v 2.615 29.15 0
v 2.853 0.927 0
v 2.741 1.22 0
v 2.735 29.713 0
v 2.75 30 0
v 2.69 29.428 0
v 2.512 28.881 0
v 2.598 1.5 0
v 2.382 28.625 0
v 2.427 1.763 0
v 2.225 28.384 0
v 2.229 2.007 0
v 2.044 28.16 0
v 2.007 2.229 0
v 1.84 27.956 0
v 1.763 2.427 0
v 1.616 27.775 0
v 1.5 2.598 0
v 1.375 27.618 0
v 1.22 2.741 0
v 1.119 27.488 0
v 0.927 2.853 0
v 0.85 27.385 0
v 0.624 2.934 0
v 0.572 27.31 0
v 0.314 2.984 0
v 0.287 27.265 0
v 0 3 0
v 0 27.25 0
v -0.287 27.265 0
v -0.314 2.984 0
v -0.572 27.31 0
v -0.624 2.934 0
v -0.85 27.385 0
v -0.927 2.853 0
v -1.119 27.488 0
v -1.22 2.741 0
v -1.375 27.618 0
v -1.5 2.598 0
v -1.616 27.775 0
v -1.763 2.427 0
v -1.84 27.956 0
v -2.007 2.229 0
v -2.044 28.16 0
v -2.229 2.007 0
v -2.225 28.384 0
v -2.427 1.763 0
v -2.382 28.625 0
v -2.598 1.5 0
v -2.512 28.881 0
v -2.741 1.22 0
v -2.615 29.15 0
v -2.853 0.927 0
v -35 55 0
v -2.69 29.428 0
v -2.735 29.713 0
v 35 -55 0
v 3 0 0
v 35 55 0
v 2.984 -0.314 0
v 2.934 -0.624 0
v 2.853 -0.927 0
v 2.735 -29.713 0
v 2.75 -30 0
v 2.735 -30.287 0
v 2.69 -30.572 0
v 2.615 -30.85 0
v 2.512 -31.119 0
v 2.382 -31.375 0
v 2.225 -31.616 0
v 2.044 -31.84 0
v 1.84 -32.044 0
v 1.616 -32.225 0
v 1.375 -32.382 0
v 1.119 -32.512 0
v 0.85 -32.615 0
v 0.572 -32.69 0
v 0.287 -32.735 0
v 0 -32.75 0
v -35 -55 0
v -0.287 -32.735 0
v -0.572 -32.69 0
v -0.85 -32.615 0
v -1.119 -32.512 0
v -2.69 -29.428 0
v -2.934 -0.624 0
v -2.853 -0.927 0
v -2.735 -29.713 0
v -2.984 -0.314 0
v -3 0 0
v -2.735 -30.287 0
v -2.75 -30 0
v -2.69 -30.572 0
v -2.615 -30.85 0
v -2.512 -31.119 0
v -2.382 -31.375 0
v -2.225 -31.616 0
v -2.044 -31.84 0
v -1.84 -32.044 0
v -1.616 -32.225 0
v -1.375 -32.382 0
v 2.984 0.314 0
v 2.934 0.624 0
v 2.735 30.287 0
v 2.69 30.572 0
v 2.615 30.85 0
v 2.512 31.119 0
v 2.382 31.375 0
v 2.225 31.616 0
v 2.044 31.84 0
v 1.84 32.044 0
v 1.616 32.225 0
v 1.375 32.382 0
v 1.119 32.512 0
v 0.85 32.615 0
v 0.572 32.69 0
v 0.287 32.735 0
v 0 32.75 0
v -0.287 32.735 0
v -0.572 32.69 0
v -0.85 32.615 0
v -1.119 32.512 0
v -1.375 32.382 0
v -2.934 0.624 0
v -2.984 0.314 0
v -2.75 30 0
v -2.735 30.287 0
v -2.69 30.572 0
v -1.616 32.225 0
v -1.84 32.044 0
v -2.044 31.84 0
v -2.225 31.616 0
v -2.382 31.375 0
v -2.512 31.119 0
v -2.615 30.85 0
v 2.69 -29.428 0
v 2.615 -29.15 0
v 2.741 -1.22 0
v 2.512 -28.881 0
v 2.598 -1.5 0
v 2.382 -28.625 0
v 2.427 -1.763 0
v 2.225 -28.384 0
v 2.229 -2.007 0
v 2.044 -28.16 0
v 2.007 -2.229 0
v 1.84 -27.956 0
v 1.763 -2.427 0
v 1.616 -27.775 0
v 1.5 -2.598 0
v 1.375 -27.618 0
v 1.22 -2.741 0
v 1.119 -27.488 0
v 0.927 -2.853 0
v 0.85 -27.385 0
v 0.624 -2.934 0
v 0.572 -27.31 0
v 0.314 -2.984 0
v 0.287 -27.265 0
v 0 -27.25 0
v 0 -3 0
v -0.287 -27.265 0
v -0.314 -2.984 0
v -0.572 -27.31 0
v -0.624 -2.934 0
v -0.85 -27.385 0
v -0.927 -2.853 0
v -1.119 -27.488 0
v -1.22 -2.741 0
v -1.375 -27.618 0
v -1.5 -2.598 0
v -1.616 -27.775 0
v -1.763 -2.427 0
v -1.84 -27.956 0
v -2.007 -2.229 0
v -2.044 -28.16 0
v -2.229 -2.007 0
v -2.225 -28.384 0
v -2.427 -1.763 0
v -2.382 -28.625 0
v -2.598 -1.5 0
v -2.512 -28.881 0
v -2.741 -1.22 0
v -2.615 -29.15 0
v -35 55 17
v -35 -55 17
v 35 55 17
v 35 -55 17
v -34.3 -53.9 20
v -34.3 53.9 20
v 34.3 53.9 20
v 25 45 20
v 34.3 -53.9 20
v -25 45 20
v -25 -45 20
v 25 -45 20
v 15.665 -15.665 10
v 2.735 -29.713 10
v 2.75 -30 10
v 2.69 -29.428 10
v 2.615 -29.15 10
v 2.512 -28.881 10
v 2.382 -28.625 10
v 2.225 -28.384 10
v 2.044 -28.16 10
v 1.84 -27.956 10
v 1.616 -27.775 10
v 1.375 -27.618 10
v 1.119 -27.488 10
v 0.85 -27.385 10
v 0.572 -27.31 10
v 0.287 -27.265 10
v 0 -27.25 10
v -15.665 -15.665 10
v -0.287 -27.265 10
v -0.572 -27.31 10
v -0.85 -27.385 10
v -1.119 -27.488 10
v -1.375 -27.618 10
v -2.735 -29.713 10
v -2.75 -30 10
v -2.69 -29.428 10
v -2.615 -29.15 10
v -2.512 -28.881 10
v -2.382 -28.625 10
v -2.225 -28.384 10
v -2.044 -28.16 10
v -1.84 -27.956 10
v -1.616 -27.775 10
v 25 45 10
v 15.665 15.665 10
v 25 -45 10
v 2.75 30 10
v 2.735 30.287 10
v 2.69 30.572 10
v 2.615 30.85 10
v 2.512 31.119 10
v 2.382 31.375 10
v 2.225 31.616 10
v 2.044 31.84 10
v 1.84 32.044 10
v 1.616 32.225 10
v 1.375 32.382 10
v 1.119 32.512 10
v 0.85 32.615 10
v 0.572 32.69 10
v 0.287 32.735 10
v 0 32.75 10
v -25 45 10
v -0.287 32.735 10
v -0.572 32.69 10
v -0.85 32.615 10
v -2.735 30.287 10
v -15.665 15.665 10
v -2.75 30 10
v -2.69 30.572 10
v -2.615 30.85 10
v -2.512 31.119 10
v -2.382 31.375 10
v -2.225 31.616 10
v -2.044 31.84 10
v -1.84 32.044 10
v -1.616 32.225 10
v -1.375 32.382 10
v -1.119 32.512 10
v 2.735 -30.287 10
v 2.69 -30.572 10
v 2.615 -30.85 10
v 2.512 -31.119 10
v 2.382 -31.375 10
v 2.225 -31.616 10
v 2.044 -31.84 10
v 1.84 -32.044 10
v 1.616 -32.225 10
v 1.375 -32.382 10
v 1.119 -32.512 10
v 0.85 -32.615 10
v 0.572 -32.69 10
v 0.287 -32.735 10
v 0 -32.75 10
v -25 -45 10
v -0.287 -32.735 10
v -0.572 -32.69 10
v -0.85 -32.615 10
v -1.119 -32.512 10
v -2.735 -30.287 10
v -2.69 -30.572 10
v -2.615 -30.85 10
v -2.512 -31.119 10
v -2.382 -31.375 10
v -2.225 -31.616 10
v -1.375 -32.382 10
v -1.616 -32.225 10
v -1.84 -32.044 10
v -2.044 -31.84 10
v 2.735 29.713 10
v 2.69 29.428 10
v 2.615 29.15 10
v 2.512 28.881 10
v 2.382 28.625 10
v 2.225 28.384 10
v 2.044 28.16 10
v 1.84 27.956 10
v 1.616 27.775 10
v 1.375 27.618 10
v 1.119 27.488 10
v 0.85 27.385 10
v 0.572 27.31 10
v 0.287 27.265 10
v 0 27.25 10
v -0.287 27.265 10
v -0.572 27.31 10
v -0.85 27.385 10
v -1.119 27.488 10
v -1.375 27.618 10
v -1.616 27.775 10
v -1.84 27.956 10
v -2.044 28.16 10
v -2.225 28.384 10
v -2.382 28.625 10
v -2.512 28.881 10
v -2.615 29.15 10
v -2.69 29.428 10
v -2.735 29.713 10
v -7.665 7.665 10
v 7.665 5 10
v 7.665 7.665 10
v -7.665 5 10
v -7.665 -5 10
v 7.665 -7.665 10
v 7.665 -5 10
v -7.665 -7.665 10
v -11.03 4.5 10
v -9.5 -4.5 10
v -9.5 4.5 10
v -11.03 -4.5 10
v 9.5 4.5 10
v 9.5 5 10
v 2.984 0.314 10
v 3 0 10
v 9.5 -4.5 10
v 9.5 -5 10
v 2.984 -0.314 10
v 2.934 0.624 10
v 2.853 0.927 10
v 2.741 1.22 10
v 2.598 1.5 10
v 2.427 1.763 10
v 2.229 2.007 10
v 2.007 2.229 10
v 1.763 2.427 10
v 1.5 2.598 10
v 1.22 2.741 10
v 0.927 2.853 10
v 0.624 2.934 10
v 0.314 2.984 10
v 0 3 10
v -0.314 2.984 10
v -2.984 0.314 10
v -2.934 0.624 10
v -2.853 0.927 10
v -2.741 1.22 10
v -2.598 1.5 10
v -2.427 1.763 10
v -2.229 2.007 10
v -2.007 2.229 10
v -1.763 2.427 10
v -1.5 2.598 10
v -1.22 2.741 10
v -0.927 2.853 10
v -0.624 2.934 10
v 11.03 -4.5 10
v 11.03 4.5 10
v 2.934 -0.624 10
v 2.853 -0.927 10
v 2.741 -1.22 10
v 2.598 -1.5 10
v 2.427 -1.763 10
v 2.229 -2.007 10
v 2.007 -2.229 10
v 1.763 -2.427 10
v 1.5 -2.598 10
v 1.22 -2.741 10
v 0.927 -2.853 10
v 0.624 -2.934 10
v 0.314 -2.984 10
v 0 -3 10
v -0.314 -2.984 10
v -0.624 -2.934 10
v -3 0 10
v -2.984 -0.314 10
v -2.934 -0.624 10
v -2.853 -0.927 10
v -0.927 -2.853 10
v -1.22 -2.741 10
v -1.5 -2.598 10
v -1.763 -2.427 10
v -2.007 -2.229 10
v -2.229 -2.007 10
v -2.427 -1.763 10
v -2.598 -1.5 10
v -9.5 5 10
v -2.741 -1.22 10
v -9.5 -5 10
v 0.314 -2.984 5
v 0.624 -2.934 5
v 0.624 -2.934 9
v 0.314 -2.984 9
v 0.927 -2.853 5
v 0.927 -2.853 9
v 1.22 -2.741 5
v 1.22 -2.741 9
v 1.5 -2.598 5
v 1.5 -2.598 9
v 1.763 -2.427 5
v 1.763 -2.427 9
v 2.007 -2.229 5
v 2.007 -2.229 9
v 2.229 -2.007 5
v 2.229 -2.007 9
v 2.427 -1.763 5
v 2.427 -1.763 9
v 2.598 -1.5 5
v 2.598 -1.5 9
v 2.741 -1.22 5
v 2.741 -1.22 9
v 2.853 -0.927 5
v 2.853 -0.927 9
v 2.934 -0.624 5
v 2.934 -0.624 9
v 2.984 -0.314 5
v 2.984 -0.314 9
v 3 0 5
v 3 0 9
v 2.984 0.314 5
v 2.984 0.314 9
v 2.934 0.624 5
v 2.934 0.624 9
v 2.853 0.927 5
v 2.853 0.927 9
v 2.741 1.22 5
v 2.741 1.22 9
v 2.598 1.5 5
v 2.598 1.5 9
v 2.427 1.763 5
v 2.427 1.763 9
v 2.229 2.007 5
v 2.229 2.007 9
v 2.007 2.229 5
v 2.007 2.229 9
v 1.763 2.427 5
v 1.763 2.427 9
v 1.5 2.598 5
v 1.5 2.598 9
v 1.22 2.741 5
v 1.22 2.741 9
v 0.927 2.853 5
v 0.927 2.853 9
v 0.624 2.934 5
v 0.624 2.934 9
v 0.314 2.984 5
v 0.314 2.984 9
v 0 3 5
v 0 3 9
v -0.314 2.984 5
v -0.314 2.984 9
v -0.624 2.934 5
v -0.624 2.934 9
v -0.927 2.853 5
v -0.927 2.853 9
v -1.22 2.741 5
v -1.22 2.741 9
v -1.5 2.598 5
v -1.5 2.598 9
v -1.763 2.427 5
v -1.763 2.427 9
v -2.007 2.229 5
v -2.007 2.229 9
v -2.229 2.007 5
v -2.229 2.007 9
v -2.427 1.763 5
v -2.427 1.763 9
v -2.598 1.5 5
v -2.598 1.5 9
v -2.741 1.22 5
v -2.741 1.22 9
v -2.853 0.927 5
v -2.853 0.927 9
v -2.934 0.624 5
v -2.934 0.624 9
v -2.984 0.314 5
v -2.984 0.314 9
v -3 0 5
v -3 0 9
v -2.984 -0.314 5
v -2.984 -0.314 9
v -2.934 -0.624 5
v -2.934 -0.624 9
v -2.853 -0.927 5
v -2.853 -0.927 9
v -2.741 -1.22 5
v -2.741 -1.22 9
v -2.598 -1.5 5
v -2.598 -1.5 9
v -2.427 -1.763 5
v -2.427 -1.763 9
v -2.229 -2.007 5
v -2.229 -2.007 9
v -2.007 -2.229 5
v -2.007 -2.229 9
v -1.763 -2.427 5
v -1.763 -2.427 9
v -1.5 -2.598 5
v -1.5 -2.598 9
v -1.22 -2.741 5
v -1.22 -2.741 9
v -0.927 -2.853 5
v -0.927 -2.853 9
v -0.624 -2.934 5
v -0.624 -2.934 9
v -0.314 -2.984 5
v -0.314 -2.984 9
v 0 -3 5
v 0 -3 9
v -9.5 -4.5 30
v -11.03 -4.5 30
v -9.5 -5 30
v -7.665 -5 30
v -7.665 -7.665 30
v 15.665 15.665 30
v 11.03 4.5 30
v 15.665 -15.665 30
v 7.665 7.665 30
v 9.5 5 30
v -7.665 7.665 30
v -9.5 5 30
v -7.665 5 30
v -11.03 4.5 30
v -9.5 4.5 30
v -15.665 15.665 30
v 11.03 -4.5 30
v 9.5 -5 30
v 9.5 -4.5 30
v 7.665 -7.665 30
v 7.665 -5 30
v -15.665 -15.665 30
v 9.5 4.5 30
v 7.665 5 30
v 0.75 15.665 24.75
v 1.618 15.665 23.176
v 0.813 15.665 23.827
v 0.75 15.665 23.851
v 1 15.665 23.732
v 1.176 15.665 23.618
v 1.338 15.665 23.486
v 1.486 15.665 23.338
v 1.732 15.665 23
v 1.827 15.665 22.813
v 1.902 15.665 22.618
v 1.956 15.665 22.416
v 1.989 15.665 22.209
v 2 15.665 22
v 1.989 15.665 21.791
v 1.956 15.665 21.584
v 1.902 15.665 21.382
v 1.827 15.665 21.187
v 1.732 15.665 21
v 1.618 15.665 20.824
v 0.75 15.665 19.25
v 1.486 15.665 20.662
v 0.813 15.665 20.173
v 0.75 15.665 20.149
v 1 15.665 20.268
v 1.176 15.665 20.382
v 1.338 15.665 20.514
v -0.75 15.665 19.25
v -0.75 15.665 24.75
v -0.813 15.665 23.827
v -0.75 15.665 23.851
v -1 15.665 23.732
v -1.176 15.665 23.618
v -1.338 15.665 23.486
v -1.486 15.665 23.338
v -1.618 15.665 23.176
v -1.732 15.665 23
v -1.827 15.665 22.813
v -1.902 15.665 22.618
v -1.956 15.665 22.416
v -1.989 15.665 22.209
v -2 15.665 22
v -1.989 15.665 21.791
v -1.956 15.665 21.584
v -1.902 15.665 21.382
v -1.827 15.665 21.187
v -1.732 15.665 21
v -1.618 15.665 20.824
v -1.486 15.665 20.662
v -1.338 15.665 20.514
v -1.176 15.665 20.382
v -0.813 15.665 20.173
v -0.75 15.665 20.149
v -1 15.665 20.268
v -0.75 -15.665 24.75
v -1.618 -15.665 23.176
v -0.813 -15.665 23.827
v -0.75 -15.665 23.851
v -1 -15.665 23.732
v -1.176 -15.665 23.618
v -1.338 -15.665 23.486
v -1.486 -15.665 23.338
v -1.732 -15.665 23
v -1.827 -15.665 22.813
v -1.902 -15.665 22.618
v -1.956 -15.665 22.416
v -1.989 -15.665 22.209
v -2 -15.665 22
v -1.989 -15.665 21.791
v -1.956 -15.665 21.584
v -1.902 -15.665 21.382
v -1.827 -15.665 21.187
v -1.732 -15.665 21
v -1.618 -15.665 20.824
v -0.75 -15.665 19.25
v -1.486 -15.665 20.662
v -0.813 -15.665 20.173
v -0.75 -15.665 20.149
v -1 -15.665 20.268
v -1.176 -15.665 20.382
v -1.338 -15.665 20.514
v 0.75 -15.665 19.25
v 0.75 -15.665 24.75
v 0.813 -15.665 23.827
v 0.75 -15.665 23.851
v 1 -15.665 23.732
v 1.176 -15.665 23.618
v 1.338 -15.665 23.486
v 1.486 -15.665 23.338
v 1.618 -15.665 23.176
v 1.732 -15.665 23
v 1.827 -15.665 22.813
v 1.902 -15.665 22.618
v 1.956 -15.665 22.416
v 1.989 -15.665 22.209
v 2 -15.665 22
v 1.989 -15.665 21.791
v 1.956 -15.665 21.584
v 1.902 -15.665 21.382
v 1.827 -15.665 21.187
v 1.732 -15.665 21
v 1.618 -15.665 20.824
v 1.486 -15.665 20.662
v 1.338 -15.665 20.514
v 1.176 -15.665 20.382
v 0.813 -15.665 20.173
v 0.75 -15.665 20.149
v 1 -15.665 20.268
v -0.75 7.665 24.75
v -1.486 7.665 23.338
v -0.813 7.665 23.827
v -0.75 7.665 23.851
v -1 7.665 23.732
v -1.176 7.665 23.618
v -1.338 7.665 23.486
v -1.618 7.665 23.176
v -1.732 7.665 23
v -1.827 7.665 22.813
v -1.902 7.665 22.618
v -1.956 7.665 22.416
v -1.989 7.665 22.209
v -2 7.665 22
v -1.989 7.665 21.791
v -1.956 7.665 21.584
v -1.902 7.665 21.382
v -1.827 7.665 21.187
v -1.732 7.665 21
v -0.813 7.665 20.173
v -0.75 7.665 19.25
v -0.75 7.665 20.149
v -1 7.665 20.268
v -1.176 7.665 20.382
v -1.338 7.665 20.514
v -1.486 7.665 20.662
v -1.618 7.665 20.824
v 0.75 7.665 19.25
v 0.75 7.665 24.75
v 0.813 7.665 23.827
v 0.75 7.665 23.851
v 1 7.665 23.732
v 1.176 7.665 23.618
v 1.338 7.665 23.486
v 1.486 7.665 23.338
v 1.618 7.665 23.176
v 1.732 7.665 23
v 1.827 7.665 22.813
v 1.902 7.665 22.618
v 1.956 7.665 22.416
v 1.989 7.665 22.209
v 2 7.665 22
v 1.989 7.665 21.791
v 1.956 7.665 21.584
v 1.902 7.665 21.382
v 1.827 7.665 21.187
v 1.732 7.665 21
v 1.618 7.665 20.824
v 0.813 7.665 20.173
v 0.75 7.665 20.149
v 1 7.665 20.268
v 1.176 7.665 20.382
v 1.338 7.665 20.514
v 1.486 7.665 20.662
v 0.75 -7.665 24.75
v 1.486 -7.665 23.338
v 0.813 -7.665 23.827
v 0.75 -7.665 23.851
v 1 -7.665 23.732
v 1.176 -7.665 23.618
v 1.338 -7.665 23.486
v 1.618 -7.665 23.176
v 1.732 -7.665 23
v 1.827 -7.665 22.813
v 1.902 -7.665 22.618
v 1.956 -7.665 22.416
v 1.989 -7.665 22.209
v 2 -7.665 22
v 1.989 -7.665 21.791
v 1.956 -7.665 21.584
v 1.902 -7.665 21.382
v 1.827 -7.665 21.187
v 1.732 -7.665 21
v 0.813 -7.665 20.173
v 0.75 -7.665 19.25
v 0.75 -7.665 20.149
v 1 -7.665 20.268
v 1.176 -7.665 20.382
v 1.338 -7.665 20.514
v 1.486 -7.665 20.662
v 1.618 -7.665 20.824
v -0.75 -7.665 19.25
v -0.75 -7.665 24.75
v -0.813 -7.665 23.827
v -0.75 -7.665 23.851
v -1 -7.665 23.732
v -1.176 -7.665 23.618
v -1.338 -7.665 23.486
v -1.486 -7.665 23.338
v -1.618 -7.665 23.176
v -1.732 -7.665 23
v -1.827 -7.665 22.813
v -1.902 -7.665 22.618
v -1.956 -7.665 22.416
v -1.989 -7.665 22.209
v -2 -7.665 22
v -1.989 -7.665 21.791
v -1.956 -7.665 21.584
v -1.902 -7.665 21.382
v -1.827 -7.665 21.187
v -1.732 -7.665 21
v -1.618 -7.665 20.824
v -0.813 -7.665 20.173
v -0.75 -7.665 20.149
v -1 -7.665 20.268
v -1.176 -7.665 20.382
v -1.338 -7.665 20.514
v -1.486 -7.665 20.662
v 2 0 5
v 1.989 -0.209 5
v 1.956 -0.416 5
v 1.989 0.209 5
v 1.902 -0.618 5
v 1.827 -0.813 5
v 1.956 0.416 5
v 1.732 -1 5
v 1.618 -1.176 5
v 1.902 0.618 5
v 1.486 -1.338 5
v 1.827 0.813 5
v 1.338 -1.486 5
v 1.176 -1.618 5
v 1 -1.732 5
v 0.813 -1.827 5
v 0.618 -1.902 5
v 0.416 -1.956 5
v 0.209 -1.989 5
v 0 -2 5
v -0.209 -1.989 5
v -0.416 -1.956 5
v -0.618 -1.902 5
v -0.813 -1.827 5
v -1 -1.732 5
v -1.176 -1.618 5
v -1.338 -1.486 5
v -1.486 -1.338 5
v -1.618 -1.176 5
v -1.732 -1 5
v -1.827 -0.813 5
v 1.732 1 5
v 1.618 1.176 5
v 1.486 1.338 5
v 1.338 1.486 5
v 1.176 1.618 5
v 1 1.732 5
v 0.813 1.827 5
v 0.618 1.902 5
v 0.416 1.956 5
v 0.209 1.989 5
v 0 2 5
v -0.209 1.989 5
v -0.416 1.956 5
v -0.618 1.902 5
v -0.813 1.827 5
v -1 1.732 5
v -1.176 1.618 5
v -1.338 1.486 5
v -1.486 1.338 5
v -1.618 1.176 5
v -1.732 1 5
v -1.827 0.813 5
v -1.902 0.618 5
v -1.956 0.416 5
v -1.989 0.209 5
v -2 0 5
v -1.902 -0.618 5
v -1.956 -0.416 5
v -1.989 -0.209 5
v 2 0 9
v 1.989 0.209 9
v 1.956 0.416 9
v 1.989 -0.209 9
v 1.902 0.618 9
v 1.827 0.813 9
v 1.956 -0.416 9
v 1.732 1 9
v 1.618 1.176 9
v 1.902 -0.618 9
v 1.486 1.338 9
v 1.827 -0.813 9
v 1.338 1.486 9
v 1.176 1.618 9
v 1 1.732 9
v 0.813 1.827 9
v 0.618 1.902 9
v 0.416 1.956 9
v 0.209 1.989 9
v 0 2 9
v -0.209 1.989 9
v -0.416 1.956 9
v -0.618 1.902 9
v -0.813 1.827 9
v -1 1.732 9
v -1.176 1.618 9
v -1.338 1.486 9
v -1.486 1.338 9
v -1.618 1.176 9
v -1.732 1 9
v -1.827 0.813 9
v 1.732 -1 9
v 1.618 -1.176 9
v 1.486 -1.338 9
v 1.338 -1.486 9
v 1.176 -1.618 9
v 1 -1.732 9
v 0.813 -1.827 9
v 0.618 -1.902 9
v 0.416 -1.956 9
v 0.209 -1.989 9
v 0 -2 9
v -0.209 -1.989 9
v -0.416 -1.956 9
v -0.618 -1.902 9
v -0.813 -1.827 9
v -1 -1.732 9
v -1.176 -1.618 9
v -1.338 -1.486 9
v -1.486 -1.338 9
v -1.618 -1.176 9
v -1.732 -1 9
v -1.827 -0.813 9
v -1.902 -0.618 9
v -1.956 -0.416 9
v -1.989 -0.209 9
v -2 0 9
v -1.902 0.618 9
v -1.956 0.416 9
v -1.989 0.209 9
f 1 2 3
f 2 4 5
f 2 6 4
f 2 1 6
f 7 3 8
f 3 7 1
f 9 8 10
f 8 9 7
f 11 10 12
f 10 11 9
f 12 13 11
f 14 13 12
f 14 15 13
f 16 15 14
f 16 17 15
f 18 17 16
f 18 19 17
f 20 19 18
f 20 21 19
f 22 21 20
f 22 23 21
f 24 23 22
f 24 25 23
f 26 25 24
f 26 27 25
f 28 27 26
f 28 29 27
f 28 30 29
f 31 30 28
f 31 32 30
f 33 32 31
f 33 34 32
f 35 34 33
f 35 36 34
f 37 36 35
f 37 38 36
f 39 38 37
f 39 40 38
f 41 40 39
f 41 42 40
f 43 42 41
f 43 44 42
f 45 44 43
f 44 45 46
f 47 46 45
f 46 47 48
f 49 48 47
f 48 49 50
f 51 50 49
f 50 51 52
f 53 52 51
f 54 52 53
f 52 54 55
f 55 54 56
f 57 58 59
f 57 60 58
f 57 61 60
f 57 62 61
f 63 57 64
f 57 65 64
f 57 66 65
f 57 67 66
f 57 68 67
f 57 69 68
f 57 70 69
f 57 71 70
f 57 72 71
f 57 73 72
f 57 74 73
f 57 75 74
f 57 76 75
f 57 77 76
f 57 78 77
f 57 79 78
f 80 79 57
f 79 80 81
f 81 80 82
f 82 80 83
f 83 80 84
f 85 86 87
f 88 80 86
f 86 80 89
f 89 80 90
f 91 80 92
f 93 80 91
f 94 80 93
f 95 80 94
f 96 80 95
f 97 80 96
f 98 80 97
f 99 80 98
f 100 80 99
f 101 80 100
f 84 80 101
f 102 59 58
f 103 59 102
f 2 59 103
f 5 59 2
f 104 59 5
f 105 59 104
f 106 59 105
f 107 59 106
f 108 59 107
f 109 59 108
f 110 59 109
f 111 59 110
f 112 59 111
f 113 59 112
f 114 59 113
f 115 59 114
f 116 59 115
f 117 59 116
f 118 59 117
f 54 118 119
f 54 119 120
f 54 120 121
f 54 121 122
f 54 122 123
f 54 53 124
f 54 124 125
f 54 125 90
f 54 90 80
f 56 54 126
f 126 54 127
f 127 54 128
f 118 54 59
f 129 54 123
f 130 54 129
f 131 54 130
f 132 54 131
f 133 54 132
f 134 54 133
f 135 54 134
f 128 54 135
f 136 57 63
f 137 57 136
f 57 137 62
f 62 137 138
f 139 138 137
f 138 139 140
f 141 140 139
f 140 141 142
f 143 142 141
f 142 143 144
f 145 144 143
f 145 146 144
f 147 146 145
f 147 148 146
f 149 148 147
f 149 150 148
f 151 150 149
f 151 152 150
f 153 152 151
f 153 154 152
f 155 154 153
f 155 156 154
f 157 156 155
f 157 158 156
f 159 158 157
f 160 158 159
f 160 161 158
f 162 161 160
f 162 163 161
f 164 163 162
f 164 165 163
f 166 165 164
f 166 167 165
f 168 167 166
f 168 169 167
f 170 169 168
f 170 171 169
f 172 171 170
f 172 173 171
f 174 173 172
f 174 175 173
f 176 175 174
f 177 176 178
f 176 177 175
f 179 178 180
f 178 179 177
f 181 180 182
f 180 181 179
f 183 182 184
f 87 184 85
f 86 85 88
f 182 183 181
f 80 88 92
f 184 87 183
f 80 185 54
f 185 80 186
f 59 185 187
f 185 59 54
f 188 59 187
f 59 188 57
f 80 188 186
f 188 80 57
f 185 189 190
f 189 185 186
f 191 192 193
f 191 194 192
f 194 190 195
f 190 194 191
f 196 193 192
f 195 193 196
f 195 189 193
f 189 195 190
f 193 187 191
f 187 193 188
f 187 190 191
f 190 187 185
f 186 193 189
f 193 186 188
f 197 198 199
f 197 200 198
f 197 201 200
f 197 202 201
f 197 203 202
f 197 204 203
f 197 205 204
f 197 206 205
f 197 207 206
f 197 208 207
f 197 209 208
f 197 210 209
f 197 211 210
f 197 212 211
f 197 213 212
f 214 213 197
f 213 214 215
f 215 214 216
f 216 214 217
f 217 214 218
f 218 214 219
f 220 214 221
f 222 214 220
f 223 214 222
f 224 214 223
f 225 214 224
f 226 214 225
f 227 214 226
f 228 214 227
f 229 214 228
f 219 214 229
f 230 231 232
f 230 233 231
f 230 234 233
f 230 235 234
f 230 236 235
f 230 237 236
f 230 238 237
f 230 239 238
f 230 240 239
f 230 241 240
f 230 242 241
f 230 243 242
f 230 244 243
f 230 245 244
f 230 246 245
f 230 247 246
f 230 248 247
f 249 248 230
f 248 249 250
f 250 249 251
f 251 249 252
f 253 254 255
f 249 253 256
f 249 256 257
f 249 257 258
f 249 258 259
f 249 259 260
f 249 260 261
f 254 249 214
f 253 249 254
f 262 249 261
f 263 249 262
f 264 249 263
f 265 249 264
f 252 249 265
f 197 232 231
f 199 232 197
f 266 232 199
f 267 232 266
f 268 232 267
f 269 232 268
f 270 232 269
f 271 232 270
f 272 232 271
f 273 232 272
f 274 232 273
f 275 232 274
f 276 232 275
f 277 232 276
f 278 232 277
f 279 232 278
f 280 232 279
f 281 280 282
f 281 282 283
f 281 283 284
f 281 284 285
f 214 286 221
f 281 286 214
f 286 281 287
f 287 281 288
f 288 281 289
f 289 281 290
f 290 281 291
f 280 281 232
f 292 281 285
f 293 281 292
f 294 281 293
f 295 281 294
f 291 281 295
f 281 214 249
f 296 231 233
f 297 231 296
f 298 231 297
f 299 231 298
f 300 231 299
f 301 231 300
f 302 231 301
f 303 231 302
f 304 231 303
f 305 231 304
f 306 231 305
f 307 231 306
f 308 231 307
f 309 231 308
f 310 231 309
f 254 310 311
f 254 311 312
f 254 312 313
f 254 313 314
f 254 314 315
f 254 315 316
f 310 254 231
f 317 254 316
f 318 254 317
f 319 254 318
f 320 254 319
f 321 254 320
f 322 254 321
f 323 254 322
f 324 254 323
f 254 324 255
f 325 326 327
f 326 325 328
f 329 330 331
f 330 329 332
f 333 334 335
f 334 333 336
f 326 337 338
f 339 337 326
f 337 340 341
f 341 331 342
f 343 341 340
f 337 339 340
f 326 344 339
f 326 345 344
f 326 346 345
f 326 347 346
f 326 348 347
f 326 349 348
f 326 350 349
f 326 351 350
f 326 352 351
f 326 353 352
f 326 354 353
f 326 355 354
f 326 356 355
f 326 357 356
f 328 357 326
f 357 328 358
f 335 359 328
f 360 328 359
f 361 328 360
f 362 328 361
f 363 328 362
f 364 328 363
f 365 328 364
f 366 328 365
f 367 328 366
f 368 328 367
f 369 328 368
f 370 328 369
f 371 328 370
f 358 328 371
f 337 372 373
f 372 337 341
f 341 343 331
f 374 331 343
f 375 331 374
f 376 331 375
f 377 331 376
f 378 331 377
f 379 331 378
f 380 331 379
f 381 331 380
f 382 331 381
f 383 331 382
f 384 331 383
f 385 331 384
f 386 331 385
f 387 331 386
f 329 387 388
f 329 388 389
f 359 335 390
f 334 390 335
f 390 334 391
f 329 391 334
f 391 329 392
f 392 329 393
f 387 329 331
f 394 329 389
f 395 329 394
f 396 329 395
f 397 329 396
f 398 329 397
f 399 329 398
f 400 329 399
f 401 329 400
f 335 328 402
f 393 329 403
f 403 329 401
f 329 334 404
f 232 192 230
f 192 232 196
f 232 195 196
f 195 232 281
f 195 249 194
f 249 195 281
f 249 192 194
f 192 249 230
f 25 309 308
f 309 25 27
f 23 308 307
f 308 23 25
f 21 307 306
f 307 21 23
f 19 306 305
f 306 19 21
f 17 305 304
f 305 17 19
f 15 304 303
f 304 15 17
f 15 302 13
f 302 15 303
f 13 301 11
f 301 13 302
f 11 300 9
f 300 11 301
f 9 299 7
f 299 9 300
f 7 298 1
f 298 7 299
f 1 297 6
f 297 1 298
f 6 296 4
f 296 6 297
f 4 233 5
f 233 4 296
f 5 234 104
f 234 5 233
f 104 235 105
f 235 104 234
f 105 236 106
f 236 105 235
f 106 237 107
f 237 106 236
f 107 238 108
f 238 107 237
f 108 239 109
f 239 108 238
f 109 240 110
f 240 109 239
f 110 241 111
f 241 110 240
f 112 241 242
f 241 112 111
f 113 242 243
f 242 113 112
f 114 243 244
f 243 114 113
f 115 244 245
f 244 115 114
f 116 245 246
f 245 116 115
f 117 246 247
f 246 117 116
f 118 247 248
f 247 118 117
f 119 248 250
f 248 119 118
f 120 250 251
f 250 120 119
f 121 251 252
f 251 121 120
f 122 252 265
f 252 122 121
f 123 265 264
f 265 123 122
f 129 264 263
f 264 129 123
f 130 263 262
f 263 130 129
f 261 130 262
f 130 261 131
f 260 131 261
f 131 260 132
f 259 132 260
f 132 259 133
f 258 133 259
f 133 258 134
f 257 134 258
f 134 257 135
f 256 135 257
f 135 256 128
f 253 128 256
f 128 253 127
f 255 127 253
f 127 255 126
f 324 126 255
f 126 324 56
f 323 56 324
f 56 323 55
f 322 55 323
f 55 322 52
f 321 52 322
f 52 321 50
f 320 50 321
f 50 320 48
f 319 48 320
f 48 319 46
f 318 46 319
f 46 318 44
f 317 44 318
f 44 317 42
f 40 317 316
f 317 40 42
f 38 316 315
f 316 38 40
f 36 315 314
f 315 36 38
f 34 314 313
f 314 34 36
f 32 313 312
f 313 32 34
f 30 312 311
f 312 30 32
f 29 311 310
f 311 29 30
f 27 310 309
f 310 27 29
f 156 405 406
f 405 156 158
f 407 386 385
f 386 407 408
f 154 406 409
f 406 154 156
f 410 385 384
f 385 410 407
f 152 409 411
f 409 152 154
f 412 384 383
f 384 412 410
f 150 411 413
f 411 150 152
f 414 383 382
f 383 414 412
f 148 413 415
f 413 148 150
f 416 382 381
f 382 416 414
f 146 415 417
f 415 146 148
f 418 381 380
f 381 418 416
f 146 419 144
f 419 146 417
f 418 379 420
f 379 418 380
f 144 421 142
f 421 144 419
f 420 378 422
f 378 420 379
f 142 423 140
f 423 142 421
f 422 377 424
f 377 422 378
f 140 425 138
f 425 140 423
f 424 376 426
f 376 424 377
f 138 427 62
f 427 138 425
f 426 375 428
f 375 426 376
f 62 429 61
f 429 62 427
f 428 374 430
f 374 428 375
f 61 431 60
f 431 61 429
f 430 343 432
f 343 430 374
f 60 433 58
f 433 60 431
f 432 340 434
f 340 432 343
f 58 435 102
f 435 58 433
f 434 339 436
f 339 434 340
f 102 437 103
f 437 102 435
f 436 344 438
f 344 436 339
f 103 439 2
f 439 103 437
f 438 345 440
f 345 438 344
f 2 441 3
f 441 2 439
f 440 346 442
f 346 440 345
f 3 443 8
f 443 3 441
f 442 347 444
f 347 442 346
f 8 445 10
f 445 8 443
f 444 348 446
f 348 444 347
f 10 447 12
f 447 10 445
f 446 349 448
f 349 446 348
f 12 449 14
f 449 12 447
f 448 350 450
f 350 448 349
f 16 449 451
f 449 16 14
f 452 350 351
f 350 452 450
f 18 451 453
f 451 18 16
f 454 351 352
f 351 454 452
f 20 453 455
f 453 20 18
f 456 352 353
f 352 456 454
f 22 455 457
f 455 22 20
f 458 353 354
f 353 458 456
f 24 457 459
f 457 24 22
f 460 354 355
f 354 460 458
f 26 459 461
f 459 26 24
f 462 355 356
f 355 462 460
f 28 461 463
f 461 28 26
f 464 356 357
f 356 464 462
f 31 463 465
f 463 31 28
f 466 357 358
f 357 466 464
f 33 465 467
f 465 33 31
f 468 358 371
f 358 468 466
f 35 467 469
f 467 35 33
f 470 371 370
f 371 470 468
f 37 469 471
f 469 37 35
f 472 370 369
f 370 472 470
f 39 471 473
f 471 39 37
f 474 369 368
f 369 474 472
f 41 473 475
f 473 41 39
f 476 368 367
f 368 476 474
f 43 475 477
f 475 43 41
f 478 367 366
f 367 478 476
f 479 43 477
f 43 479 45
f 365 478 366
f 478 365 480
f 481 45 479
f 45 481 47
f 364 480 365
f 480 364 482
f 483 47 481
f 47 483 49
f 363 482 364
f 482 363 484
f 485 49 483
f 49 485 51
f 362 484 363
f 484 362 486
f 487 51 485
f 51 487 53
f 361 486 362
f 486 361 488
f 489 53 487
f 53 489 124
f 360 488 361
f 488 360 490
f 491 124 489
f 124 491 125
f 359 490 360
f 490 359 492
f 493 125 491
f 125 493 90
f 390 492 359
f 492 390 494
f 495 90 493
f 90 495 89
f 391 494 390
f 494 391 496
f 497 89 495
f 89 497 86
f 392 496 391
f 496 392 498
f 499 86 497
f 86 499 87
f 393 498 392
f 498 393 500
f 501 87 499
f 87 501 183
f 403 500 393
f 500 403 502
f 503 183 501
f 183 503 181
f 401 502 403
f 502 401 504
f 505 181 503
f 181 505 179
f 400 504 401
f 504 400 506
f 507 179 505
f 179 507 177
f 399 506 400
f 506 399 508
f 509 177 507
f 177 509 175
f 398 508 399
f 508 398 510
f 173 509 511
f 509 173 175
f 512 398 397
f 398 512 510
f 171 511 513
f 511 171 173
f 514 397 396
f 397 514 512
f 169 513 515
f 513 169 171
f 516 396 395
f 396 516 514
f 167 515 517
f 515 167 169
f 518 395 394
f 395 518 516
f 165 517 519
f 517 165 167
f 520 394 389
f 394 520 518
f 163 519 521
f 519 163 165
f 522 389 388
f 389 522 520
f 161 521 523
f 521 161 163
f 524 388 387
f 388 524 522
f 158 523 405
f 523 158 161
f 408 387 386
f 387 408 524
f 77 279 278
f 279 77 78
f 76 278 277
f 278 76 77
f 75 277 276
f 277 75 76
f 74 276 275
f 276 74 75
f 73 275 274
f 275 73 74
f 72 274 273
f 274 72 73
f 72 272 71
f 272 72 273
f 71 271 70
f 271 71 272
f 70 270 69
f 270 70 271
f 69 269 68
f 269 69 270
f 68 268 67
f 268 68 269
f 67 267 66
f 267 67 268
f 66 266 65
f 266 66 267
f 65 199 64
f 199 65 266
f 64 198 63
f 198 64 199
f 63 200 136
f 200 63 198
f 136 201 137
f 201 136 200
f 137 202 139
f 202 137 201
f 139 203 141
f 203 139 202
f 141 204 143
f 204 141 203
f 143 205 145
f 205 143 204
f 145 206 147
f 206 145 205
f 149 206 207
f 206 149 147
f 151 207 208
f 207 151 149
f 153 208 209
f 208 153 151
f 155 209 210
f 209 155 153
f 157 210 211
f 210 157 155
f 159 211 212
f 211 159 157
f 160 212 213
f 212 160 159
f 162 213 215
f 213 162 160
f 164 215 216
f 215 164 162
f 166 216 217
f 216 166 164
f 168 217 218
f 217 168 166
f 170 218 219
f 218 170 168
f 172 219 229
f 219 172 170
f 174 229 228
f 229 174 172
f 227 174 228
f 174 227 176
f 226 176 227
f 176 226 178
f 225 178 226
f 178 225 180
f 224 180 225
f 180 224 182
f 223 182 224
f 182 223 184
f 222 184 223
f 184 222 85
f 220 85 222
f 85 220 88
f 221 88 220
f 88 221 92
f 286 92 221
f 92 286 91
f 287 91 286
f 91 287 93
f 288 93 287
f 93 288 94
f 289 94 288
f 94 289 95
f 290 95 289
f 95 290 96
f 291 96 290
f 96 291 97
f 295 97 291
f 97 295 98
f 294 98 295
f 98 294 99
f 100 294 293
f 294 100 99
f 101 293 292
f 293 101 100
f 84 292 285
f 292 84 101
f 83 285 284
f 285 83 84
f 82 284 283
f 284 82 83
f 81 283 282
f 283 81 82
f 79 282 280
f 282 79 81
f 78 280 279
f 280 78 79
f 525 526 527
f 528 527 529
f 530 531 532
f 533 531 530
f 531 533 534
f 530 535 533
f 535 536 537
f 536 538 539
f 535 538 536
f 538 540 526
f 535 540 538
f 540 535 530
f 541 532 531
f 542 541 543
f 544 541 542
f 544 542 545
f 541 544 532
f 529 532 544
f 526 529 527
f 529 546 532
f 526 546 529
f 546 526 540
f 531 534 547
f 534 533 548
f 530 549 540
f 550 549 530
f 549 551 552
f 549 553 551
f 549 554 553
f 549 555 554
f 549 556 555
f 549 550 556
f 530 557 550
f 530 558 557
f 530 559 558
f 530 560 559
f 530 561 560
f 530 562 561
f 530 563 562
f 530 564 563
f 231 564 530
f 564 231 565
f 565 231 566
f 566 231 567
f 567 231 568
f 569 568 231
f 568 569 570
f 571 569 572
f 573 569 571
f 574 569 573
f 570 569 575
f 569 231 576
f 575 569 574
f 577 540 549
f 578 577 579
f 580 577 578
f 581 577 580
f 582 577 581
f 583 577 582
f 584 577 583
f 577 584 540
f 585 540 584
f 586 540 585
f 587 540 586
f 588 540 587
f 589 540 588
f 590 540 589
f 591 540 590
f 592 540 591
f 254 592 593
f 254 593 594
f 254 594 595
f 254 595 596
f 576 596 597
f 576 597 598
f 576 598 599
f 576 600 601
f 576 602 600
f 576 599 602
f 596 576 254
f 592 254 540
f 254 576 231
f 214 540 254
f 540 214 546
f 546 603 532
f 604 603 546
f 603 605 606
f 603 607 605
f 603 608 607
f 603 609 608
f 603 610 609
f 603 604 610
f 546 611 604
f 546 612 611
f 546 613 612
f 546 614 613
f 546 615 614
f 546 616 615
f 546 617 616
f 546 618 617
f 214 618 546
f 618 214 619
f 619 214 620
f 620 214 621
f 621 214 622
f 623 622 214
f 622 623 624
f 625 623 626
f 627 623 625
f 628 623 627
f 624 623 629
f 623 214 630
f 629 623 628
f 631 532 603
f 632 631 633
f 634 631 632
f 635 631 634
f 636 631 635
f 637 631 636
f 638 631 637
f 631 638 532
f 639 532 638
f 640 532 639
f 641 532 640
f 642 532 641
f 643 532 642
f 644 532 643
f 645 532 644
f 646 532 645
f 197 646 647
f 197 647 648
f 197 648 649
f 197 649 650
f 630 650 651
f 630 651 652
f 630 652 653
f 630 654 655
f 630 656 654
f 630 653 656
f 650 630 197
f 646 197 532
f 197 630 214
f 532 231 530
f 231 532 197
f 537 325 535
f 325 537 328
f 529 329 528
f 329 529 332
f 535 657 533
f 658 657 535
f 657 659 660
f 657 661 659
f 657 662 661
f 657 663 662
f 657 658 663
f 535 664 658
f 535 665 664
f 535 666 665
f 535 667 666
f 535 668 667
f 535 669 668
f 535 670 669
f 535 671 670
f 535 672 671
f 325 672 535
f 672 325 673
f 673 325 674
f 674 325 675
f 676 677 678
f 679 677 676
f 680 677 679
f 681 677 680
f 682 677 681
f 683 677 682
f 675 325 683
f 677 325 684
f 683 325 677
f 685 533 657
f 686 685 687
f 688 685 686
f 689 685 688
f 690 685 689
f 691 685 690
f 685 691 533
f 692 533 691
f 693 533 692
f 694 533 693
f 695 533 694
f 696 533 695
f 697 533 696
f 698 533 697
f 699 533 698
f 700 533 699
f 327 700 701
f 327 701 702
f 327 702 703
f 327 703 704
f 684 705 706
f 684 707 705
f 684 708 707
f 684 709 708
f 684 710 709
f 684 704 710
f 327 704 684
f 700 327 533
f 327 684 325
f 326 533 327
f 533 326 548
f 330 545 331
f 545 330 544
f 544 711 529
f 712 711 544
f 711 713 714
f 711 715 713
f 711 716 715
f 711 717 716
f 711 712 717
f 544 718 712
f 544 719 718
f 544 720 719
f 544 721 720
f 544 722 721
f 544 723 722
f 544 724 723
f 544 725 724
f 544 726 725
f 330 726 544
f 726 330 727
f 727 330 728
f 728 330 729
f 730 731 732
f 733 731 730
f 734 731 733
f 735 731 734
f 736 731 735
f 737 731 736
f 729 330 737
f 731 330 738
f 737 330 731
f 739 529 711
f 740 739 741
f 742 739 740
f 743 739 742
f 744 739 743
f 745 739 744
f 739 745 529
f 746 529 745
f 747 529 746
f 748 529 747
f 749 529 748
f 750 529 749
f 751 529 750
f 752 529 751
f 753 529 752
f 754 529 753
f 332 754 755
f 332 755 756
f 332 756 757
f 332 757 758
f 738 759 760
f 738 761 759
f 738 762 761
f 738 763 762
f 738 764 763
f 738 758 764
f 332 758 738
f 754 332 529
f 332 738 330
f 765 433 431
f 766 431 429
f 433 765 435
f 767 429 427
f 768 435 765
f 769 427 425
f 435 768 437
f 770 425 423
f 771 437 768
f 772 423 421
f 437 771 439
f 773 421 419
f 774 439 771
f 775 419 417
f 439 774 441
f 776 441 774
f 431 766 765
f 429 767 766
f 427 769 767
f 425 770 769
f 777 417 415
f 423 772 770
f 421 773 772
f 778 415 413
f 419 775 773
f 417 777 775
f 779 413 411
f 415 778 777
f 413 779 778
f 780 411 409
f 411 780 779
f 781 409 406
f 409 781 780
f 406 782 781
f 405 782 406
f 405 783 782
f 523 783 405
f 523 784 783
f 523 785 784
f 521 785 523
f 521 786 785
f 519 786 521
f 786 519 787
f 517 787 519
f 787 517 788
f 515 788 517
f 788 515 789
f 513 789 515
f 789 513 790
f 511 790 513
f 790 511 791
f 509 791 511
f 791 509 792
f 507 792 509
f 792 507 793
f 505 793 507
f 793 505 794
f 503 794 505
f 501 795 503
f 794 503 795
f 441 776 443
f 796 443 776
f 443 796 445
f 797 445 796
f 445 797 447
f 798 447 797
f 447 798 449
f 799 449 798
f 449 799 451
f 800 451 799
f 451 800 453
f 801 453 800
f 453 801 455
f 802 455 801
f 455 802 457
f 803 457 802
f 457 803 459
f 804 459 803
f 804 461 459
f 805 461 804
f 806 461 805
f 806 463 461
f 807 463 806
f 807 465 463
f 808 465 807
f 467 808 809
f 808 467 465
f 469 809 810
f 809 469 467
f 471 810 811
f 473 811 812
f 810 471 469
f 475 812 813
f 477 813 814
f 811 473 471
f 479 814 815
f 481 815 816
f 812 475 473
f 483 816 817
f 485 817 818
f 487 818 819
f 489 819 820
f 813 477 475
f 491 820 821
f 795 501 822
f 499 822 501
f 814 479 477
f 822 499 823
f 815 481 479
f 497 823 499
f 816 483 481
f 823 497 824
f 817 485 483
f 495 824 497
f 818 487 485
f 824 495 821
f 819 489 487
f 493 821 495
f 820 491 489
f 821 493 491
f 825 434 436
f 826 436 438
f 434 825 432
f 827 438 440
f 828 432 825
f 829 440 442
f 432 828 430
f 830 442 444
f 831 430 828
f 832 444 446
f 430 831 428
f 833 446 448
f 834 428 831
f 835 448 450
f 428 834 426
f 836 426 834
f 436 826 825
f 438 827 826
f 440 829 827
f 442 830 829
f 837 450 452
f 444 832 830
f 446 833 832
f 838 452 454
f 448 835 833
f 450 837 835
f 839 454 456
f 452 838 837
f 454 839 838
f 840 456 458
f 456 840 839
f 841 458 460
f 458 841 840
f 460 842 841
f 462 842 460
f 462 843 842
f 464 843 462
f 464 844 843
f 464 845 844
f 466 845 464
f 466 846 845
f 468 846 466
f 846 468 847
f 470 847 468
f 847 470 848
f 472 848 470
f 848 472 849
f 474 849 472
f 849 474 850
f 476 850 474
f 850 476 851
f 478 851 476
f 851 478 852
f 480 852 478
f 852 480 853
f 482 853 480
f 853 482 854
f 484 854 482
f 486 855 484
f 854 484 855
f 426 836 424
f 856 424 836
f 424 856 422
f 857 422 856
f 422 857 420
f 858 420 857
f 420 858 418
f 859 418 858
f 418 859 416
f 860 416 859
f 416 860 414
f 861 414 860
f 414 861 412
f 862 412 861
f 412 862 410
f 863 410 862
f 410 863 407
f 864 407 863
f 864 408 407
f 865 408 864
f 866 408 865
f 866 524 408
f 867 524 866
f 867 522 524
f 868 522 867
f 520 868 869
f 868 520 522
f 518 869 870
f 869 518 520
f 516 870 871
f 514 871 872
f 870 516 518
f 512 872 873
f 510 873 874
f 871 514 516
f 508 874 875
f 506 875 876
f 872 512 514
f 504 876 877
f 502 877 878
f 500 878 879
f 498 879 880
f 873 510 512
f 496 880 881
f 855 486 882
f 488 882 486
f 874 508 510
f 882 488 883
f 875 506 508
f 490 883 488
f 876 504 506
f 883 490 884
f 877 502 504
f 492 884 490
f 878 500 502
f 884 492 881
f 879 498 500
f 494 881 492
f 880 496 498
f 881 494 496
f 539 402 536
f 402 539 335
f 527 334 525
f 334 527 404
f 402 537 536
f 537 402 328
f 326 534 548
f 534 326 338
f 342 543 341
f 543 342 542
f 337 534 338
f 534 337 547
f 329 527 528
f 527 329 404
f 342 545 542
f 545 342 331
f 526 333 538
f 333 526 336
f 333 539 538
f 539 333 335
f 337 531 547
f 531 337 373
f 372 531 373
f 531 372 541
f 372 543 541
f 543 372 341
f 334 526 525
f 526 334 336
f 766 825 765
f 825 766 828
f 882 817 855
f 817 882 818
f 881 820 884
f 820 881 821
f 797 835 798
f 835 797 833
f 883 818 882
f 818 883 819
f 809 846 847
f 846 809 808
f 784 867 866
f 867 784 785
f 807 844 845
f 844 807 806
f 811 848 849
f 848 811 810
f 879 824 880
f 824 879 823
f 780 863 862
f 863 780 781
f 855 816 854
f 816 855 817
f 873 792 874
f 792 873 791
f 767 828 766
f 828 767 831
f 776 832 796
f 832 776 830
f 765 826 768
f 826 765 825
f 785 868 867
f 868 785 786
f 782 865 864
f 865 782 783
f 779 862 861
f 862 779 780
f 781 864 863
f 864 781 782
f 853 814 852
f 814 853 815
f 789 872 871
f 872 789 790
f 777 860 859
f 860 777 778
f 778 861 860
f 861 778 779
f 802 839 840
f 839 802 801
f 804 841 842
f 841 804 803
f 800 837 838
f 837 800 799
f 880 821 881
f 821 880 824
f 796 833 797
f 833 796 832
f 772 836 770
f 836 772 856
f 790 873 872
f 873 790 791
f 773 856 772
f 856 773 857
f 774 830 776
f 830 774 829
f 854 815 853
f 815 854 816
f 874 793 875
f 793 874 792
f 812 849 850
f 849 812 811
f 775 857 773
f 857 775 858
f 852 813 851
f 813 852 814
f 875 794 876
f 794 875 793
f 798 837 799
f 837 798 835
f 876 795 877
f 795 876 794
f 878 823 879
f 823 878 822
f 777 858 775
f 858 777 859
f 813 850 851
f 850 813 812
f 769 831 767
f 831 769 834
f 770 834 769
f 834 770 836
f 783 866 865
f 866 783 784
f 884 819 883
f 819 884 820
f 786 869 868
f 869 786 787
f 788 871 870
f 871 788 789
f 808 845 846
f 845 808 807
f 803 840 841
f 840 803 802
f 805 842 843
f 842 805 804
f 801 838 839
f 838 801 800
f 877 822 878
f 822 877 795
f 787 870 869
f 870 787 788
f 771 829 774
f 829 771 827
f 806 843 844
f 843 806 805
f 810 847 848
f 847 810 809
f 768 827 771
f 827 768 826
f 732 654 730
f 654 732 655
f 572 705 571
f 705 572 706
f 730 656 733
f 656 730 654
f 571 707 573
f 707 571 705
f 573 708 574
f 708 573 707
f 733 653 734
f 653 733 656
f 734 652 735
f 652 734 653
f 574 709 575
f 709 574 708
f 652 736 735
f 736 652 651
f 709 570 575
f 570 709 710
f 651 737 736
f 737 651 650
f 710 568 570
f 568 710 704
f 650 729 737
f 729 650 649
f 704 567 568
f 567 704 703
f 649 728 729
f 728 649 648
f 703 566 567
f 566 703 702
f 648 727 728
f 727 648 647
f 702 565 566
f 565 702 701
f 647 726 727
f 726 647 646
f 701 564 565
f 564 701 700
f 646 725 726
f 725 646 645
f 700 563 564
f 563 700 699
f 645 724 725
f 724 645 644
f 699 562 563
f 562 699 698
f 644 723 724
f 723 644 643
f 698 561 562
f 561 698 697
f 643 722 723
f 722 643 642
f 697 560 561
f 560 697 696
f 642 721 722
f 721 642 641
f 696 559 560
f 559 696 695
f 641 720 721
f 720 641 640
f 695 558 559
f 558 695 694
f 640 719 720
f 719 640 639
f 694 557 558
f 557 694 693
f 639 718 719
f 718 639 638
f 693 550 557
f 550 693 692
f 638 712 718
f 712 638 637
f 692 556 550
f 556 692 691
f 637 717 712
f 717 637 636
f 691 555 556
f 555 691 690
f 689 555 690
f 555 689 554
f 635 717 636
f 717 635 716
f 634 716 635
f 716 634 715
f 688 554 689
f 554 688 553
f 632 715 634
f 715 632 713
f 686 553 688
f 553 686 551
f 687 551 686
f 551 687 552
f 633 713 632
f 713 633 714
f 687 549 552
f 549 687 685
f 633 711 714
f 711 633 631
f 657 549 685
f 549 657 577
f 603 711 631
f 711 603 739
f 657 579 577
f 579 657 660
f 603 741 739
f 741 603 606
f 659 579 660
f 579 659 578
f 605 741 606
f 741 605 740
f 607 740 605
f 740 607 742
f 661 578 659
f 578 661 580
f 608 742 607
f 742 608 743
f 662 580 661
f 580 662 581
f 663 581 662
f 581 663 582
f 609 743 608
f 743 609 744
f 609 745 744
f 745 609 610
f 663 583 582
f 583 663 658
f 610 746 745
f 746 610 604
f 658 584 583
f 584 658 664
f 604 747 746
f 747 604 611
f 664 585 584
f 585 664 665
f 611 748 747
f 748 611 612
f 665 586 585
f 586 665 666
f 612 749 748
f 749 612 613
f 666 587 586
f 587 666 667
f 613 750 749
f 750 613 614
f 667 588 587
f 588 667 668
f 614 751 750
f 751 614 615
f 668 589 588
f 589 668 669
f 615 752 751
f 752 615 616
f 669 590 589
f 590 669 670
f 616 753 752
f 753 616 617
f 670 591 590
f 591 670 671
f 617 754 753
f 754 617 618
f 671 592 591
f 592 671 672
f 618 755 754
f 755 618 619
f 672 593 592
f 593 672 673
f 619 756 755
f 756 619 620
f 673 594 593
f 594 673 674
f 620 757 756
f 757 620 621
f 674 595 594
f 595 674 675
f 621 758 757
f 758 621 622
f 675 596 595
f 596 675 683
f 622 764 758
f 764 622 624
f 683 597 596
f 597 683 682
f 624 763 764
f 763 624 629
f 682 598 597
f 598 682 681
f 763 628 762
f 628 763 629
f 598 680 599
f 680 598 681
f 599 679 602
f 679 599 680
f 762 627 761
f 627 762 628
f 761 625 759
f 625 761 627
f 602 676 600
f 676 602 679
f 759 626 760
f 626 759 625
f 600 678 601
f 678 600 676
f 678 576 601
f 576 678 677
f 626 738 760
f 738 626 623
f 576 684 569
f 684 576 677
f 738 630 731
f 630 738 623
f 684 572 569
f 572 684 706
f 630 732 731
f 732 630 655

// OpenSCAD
$fn=60;
difference(){
    union(){
linear_extrude(17){
       square([70,110],center=true);
}
translate([0,0,17]) linear_extrude(3,scale=0.98){
       square([70,110],center=true);
}
}
translate([0,0,10])linear_extrude(20){
        offset(-10) square([70,110],center=true);       
}

linear_extrude(20){
        circle(d=6);
        translate([0,30]) circle(d=5.5);
        translate([0,-30]) circle(d=5.5);
}

}






/////


thickness=3;
OD=65;
ID=OD-2*thickness;
of=0.2;



difference() {

union(){
translate([0,0,10]){
t=8;

difference(){
    union(){
linear_extrude(20) difference(){
    translate([0,0,0]) square([15.33+2*t,15.33+2*t],center=true);
    square(15.33,center=true);
}
translate([0,0,-5]) linear_extrude(5) difference(){
    translate([0,0,0]) square([15.33+2*t,15.33+2*t],center=true);
}

}


translate([0,0,-1])linear_extrude(25) 
//translate([0,3.9]) 
square([19,10],center=true);

translate([0,0,-1])linear_extrude(25) 
square([22.06,9],center=true);

linear_extrude(25,center=true) circle(2);
}

}
}

translate([0,0,22]) rotate([90,0]) linear_extrude(100,center=true ) {
    circle(d=4);
    square([1.5,5.5],center=true);
}

}
